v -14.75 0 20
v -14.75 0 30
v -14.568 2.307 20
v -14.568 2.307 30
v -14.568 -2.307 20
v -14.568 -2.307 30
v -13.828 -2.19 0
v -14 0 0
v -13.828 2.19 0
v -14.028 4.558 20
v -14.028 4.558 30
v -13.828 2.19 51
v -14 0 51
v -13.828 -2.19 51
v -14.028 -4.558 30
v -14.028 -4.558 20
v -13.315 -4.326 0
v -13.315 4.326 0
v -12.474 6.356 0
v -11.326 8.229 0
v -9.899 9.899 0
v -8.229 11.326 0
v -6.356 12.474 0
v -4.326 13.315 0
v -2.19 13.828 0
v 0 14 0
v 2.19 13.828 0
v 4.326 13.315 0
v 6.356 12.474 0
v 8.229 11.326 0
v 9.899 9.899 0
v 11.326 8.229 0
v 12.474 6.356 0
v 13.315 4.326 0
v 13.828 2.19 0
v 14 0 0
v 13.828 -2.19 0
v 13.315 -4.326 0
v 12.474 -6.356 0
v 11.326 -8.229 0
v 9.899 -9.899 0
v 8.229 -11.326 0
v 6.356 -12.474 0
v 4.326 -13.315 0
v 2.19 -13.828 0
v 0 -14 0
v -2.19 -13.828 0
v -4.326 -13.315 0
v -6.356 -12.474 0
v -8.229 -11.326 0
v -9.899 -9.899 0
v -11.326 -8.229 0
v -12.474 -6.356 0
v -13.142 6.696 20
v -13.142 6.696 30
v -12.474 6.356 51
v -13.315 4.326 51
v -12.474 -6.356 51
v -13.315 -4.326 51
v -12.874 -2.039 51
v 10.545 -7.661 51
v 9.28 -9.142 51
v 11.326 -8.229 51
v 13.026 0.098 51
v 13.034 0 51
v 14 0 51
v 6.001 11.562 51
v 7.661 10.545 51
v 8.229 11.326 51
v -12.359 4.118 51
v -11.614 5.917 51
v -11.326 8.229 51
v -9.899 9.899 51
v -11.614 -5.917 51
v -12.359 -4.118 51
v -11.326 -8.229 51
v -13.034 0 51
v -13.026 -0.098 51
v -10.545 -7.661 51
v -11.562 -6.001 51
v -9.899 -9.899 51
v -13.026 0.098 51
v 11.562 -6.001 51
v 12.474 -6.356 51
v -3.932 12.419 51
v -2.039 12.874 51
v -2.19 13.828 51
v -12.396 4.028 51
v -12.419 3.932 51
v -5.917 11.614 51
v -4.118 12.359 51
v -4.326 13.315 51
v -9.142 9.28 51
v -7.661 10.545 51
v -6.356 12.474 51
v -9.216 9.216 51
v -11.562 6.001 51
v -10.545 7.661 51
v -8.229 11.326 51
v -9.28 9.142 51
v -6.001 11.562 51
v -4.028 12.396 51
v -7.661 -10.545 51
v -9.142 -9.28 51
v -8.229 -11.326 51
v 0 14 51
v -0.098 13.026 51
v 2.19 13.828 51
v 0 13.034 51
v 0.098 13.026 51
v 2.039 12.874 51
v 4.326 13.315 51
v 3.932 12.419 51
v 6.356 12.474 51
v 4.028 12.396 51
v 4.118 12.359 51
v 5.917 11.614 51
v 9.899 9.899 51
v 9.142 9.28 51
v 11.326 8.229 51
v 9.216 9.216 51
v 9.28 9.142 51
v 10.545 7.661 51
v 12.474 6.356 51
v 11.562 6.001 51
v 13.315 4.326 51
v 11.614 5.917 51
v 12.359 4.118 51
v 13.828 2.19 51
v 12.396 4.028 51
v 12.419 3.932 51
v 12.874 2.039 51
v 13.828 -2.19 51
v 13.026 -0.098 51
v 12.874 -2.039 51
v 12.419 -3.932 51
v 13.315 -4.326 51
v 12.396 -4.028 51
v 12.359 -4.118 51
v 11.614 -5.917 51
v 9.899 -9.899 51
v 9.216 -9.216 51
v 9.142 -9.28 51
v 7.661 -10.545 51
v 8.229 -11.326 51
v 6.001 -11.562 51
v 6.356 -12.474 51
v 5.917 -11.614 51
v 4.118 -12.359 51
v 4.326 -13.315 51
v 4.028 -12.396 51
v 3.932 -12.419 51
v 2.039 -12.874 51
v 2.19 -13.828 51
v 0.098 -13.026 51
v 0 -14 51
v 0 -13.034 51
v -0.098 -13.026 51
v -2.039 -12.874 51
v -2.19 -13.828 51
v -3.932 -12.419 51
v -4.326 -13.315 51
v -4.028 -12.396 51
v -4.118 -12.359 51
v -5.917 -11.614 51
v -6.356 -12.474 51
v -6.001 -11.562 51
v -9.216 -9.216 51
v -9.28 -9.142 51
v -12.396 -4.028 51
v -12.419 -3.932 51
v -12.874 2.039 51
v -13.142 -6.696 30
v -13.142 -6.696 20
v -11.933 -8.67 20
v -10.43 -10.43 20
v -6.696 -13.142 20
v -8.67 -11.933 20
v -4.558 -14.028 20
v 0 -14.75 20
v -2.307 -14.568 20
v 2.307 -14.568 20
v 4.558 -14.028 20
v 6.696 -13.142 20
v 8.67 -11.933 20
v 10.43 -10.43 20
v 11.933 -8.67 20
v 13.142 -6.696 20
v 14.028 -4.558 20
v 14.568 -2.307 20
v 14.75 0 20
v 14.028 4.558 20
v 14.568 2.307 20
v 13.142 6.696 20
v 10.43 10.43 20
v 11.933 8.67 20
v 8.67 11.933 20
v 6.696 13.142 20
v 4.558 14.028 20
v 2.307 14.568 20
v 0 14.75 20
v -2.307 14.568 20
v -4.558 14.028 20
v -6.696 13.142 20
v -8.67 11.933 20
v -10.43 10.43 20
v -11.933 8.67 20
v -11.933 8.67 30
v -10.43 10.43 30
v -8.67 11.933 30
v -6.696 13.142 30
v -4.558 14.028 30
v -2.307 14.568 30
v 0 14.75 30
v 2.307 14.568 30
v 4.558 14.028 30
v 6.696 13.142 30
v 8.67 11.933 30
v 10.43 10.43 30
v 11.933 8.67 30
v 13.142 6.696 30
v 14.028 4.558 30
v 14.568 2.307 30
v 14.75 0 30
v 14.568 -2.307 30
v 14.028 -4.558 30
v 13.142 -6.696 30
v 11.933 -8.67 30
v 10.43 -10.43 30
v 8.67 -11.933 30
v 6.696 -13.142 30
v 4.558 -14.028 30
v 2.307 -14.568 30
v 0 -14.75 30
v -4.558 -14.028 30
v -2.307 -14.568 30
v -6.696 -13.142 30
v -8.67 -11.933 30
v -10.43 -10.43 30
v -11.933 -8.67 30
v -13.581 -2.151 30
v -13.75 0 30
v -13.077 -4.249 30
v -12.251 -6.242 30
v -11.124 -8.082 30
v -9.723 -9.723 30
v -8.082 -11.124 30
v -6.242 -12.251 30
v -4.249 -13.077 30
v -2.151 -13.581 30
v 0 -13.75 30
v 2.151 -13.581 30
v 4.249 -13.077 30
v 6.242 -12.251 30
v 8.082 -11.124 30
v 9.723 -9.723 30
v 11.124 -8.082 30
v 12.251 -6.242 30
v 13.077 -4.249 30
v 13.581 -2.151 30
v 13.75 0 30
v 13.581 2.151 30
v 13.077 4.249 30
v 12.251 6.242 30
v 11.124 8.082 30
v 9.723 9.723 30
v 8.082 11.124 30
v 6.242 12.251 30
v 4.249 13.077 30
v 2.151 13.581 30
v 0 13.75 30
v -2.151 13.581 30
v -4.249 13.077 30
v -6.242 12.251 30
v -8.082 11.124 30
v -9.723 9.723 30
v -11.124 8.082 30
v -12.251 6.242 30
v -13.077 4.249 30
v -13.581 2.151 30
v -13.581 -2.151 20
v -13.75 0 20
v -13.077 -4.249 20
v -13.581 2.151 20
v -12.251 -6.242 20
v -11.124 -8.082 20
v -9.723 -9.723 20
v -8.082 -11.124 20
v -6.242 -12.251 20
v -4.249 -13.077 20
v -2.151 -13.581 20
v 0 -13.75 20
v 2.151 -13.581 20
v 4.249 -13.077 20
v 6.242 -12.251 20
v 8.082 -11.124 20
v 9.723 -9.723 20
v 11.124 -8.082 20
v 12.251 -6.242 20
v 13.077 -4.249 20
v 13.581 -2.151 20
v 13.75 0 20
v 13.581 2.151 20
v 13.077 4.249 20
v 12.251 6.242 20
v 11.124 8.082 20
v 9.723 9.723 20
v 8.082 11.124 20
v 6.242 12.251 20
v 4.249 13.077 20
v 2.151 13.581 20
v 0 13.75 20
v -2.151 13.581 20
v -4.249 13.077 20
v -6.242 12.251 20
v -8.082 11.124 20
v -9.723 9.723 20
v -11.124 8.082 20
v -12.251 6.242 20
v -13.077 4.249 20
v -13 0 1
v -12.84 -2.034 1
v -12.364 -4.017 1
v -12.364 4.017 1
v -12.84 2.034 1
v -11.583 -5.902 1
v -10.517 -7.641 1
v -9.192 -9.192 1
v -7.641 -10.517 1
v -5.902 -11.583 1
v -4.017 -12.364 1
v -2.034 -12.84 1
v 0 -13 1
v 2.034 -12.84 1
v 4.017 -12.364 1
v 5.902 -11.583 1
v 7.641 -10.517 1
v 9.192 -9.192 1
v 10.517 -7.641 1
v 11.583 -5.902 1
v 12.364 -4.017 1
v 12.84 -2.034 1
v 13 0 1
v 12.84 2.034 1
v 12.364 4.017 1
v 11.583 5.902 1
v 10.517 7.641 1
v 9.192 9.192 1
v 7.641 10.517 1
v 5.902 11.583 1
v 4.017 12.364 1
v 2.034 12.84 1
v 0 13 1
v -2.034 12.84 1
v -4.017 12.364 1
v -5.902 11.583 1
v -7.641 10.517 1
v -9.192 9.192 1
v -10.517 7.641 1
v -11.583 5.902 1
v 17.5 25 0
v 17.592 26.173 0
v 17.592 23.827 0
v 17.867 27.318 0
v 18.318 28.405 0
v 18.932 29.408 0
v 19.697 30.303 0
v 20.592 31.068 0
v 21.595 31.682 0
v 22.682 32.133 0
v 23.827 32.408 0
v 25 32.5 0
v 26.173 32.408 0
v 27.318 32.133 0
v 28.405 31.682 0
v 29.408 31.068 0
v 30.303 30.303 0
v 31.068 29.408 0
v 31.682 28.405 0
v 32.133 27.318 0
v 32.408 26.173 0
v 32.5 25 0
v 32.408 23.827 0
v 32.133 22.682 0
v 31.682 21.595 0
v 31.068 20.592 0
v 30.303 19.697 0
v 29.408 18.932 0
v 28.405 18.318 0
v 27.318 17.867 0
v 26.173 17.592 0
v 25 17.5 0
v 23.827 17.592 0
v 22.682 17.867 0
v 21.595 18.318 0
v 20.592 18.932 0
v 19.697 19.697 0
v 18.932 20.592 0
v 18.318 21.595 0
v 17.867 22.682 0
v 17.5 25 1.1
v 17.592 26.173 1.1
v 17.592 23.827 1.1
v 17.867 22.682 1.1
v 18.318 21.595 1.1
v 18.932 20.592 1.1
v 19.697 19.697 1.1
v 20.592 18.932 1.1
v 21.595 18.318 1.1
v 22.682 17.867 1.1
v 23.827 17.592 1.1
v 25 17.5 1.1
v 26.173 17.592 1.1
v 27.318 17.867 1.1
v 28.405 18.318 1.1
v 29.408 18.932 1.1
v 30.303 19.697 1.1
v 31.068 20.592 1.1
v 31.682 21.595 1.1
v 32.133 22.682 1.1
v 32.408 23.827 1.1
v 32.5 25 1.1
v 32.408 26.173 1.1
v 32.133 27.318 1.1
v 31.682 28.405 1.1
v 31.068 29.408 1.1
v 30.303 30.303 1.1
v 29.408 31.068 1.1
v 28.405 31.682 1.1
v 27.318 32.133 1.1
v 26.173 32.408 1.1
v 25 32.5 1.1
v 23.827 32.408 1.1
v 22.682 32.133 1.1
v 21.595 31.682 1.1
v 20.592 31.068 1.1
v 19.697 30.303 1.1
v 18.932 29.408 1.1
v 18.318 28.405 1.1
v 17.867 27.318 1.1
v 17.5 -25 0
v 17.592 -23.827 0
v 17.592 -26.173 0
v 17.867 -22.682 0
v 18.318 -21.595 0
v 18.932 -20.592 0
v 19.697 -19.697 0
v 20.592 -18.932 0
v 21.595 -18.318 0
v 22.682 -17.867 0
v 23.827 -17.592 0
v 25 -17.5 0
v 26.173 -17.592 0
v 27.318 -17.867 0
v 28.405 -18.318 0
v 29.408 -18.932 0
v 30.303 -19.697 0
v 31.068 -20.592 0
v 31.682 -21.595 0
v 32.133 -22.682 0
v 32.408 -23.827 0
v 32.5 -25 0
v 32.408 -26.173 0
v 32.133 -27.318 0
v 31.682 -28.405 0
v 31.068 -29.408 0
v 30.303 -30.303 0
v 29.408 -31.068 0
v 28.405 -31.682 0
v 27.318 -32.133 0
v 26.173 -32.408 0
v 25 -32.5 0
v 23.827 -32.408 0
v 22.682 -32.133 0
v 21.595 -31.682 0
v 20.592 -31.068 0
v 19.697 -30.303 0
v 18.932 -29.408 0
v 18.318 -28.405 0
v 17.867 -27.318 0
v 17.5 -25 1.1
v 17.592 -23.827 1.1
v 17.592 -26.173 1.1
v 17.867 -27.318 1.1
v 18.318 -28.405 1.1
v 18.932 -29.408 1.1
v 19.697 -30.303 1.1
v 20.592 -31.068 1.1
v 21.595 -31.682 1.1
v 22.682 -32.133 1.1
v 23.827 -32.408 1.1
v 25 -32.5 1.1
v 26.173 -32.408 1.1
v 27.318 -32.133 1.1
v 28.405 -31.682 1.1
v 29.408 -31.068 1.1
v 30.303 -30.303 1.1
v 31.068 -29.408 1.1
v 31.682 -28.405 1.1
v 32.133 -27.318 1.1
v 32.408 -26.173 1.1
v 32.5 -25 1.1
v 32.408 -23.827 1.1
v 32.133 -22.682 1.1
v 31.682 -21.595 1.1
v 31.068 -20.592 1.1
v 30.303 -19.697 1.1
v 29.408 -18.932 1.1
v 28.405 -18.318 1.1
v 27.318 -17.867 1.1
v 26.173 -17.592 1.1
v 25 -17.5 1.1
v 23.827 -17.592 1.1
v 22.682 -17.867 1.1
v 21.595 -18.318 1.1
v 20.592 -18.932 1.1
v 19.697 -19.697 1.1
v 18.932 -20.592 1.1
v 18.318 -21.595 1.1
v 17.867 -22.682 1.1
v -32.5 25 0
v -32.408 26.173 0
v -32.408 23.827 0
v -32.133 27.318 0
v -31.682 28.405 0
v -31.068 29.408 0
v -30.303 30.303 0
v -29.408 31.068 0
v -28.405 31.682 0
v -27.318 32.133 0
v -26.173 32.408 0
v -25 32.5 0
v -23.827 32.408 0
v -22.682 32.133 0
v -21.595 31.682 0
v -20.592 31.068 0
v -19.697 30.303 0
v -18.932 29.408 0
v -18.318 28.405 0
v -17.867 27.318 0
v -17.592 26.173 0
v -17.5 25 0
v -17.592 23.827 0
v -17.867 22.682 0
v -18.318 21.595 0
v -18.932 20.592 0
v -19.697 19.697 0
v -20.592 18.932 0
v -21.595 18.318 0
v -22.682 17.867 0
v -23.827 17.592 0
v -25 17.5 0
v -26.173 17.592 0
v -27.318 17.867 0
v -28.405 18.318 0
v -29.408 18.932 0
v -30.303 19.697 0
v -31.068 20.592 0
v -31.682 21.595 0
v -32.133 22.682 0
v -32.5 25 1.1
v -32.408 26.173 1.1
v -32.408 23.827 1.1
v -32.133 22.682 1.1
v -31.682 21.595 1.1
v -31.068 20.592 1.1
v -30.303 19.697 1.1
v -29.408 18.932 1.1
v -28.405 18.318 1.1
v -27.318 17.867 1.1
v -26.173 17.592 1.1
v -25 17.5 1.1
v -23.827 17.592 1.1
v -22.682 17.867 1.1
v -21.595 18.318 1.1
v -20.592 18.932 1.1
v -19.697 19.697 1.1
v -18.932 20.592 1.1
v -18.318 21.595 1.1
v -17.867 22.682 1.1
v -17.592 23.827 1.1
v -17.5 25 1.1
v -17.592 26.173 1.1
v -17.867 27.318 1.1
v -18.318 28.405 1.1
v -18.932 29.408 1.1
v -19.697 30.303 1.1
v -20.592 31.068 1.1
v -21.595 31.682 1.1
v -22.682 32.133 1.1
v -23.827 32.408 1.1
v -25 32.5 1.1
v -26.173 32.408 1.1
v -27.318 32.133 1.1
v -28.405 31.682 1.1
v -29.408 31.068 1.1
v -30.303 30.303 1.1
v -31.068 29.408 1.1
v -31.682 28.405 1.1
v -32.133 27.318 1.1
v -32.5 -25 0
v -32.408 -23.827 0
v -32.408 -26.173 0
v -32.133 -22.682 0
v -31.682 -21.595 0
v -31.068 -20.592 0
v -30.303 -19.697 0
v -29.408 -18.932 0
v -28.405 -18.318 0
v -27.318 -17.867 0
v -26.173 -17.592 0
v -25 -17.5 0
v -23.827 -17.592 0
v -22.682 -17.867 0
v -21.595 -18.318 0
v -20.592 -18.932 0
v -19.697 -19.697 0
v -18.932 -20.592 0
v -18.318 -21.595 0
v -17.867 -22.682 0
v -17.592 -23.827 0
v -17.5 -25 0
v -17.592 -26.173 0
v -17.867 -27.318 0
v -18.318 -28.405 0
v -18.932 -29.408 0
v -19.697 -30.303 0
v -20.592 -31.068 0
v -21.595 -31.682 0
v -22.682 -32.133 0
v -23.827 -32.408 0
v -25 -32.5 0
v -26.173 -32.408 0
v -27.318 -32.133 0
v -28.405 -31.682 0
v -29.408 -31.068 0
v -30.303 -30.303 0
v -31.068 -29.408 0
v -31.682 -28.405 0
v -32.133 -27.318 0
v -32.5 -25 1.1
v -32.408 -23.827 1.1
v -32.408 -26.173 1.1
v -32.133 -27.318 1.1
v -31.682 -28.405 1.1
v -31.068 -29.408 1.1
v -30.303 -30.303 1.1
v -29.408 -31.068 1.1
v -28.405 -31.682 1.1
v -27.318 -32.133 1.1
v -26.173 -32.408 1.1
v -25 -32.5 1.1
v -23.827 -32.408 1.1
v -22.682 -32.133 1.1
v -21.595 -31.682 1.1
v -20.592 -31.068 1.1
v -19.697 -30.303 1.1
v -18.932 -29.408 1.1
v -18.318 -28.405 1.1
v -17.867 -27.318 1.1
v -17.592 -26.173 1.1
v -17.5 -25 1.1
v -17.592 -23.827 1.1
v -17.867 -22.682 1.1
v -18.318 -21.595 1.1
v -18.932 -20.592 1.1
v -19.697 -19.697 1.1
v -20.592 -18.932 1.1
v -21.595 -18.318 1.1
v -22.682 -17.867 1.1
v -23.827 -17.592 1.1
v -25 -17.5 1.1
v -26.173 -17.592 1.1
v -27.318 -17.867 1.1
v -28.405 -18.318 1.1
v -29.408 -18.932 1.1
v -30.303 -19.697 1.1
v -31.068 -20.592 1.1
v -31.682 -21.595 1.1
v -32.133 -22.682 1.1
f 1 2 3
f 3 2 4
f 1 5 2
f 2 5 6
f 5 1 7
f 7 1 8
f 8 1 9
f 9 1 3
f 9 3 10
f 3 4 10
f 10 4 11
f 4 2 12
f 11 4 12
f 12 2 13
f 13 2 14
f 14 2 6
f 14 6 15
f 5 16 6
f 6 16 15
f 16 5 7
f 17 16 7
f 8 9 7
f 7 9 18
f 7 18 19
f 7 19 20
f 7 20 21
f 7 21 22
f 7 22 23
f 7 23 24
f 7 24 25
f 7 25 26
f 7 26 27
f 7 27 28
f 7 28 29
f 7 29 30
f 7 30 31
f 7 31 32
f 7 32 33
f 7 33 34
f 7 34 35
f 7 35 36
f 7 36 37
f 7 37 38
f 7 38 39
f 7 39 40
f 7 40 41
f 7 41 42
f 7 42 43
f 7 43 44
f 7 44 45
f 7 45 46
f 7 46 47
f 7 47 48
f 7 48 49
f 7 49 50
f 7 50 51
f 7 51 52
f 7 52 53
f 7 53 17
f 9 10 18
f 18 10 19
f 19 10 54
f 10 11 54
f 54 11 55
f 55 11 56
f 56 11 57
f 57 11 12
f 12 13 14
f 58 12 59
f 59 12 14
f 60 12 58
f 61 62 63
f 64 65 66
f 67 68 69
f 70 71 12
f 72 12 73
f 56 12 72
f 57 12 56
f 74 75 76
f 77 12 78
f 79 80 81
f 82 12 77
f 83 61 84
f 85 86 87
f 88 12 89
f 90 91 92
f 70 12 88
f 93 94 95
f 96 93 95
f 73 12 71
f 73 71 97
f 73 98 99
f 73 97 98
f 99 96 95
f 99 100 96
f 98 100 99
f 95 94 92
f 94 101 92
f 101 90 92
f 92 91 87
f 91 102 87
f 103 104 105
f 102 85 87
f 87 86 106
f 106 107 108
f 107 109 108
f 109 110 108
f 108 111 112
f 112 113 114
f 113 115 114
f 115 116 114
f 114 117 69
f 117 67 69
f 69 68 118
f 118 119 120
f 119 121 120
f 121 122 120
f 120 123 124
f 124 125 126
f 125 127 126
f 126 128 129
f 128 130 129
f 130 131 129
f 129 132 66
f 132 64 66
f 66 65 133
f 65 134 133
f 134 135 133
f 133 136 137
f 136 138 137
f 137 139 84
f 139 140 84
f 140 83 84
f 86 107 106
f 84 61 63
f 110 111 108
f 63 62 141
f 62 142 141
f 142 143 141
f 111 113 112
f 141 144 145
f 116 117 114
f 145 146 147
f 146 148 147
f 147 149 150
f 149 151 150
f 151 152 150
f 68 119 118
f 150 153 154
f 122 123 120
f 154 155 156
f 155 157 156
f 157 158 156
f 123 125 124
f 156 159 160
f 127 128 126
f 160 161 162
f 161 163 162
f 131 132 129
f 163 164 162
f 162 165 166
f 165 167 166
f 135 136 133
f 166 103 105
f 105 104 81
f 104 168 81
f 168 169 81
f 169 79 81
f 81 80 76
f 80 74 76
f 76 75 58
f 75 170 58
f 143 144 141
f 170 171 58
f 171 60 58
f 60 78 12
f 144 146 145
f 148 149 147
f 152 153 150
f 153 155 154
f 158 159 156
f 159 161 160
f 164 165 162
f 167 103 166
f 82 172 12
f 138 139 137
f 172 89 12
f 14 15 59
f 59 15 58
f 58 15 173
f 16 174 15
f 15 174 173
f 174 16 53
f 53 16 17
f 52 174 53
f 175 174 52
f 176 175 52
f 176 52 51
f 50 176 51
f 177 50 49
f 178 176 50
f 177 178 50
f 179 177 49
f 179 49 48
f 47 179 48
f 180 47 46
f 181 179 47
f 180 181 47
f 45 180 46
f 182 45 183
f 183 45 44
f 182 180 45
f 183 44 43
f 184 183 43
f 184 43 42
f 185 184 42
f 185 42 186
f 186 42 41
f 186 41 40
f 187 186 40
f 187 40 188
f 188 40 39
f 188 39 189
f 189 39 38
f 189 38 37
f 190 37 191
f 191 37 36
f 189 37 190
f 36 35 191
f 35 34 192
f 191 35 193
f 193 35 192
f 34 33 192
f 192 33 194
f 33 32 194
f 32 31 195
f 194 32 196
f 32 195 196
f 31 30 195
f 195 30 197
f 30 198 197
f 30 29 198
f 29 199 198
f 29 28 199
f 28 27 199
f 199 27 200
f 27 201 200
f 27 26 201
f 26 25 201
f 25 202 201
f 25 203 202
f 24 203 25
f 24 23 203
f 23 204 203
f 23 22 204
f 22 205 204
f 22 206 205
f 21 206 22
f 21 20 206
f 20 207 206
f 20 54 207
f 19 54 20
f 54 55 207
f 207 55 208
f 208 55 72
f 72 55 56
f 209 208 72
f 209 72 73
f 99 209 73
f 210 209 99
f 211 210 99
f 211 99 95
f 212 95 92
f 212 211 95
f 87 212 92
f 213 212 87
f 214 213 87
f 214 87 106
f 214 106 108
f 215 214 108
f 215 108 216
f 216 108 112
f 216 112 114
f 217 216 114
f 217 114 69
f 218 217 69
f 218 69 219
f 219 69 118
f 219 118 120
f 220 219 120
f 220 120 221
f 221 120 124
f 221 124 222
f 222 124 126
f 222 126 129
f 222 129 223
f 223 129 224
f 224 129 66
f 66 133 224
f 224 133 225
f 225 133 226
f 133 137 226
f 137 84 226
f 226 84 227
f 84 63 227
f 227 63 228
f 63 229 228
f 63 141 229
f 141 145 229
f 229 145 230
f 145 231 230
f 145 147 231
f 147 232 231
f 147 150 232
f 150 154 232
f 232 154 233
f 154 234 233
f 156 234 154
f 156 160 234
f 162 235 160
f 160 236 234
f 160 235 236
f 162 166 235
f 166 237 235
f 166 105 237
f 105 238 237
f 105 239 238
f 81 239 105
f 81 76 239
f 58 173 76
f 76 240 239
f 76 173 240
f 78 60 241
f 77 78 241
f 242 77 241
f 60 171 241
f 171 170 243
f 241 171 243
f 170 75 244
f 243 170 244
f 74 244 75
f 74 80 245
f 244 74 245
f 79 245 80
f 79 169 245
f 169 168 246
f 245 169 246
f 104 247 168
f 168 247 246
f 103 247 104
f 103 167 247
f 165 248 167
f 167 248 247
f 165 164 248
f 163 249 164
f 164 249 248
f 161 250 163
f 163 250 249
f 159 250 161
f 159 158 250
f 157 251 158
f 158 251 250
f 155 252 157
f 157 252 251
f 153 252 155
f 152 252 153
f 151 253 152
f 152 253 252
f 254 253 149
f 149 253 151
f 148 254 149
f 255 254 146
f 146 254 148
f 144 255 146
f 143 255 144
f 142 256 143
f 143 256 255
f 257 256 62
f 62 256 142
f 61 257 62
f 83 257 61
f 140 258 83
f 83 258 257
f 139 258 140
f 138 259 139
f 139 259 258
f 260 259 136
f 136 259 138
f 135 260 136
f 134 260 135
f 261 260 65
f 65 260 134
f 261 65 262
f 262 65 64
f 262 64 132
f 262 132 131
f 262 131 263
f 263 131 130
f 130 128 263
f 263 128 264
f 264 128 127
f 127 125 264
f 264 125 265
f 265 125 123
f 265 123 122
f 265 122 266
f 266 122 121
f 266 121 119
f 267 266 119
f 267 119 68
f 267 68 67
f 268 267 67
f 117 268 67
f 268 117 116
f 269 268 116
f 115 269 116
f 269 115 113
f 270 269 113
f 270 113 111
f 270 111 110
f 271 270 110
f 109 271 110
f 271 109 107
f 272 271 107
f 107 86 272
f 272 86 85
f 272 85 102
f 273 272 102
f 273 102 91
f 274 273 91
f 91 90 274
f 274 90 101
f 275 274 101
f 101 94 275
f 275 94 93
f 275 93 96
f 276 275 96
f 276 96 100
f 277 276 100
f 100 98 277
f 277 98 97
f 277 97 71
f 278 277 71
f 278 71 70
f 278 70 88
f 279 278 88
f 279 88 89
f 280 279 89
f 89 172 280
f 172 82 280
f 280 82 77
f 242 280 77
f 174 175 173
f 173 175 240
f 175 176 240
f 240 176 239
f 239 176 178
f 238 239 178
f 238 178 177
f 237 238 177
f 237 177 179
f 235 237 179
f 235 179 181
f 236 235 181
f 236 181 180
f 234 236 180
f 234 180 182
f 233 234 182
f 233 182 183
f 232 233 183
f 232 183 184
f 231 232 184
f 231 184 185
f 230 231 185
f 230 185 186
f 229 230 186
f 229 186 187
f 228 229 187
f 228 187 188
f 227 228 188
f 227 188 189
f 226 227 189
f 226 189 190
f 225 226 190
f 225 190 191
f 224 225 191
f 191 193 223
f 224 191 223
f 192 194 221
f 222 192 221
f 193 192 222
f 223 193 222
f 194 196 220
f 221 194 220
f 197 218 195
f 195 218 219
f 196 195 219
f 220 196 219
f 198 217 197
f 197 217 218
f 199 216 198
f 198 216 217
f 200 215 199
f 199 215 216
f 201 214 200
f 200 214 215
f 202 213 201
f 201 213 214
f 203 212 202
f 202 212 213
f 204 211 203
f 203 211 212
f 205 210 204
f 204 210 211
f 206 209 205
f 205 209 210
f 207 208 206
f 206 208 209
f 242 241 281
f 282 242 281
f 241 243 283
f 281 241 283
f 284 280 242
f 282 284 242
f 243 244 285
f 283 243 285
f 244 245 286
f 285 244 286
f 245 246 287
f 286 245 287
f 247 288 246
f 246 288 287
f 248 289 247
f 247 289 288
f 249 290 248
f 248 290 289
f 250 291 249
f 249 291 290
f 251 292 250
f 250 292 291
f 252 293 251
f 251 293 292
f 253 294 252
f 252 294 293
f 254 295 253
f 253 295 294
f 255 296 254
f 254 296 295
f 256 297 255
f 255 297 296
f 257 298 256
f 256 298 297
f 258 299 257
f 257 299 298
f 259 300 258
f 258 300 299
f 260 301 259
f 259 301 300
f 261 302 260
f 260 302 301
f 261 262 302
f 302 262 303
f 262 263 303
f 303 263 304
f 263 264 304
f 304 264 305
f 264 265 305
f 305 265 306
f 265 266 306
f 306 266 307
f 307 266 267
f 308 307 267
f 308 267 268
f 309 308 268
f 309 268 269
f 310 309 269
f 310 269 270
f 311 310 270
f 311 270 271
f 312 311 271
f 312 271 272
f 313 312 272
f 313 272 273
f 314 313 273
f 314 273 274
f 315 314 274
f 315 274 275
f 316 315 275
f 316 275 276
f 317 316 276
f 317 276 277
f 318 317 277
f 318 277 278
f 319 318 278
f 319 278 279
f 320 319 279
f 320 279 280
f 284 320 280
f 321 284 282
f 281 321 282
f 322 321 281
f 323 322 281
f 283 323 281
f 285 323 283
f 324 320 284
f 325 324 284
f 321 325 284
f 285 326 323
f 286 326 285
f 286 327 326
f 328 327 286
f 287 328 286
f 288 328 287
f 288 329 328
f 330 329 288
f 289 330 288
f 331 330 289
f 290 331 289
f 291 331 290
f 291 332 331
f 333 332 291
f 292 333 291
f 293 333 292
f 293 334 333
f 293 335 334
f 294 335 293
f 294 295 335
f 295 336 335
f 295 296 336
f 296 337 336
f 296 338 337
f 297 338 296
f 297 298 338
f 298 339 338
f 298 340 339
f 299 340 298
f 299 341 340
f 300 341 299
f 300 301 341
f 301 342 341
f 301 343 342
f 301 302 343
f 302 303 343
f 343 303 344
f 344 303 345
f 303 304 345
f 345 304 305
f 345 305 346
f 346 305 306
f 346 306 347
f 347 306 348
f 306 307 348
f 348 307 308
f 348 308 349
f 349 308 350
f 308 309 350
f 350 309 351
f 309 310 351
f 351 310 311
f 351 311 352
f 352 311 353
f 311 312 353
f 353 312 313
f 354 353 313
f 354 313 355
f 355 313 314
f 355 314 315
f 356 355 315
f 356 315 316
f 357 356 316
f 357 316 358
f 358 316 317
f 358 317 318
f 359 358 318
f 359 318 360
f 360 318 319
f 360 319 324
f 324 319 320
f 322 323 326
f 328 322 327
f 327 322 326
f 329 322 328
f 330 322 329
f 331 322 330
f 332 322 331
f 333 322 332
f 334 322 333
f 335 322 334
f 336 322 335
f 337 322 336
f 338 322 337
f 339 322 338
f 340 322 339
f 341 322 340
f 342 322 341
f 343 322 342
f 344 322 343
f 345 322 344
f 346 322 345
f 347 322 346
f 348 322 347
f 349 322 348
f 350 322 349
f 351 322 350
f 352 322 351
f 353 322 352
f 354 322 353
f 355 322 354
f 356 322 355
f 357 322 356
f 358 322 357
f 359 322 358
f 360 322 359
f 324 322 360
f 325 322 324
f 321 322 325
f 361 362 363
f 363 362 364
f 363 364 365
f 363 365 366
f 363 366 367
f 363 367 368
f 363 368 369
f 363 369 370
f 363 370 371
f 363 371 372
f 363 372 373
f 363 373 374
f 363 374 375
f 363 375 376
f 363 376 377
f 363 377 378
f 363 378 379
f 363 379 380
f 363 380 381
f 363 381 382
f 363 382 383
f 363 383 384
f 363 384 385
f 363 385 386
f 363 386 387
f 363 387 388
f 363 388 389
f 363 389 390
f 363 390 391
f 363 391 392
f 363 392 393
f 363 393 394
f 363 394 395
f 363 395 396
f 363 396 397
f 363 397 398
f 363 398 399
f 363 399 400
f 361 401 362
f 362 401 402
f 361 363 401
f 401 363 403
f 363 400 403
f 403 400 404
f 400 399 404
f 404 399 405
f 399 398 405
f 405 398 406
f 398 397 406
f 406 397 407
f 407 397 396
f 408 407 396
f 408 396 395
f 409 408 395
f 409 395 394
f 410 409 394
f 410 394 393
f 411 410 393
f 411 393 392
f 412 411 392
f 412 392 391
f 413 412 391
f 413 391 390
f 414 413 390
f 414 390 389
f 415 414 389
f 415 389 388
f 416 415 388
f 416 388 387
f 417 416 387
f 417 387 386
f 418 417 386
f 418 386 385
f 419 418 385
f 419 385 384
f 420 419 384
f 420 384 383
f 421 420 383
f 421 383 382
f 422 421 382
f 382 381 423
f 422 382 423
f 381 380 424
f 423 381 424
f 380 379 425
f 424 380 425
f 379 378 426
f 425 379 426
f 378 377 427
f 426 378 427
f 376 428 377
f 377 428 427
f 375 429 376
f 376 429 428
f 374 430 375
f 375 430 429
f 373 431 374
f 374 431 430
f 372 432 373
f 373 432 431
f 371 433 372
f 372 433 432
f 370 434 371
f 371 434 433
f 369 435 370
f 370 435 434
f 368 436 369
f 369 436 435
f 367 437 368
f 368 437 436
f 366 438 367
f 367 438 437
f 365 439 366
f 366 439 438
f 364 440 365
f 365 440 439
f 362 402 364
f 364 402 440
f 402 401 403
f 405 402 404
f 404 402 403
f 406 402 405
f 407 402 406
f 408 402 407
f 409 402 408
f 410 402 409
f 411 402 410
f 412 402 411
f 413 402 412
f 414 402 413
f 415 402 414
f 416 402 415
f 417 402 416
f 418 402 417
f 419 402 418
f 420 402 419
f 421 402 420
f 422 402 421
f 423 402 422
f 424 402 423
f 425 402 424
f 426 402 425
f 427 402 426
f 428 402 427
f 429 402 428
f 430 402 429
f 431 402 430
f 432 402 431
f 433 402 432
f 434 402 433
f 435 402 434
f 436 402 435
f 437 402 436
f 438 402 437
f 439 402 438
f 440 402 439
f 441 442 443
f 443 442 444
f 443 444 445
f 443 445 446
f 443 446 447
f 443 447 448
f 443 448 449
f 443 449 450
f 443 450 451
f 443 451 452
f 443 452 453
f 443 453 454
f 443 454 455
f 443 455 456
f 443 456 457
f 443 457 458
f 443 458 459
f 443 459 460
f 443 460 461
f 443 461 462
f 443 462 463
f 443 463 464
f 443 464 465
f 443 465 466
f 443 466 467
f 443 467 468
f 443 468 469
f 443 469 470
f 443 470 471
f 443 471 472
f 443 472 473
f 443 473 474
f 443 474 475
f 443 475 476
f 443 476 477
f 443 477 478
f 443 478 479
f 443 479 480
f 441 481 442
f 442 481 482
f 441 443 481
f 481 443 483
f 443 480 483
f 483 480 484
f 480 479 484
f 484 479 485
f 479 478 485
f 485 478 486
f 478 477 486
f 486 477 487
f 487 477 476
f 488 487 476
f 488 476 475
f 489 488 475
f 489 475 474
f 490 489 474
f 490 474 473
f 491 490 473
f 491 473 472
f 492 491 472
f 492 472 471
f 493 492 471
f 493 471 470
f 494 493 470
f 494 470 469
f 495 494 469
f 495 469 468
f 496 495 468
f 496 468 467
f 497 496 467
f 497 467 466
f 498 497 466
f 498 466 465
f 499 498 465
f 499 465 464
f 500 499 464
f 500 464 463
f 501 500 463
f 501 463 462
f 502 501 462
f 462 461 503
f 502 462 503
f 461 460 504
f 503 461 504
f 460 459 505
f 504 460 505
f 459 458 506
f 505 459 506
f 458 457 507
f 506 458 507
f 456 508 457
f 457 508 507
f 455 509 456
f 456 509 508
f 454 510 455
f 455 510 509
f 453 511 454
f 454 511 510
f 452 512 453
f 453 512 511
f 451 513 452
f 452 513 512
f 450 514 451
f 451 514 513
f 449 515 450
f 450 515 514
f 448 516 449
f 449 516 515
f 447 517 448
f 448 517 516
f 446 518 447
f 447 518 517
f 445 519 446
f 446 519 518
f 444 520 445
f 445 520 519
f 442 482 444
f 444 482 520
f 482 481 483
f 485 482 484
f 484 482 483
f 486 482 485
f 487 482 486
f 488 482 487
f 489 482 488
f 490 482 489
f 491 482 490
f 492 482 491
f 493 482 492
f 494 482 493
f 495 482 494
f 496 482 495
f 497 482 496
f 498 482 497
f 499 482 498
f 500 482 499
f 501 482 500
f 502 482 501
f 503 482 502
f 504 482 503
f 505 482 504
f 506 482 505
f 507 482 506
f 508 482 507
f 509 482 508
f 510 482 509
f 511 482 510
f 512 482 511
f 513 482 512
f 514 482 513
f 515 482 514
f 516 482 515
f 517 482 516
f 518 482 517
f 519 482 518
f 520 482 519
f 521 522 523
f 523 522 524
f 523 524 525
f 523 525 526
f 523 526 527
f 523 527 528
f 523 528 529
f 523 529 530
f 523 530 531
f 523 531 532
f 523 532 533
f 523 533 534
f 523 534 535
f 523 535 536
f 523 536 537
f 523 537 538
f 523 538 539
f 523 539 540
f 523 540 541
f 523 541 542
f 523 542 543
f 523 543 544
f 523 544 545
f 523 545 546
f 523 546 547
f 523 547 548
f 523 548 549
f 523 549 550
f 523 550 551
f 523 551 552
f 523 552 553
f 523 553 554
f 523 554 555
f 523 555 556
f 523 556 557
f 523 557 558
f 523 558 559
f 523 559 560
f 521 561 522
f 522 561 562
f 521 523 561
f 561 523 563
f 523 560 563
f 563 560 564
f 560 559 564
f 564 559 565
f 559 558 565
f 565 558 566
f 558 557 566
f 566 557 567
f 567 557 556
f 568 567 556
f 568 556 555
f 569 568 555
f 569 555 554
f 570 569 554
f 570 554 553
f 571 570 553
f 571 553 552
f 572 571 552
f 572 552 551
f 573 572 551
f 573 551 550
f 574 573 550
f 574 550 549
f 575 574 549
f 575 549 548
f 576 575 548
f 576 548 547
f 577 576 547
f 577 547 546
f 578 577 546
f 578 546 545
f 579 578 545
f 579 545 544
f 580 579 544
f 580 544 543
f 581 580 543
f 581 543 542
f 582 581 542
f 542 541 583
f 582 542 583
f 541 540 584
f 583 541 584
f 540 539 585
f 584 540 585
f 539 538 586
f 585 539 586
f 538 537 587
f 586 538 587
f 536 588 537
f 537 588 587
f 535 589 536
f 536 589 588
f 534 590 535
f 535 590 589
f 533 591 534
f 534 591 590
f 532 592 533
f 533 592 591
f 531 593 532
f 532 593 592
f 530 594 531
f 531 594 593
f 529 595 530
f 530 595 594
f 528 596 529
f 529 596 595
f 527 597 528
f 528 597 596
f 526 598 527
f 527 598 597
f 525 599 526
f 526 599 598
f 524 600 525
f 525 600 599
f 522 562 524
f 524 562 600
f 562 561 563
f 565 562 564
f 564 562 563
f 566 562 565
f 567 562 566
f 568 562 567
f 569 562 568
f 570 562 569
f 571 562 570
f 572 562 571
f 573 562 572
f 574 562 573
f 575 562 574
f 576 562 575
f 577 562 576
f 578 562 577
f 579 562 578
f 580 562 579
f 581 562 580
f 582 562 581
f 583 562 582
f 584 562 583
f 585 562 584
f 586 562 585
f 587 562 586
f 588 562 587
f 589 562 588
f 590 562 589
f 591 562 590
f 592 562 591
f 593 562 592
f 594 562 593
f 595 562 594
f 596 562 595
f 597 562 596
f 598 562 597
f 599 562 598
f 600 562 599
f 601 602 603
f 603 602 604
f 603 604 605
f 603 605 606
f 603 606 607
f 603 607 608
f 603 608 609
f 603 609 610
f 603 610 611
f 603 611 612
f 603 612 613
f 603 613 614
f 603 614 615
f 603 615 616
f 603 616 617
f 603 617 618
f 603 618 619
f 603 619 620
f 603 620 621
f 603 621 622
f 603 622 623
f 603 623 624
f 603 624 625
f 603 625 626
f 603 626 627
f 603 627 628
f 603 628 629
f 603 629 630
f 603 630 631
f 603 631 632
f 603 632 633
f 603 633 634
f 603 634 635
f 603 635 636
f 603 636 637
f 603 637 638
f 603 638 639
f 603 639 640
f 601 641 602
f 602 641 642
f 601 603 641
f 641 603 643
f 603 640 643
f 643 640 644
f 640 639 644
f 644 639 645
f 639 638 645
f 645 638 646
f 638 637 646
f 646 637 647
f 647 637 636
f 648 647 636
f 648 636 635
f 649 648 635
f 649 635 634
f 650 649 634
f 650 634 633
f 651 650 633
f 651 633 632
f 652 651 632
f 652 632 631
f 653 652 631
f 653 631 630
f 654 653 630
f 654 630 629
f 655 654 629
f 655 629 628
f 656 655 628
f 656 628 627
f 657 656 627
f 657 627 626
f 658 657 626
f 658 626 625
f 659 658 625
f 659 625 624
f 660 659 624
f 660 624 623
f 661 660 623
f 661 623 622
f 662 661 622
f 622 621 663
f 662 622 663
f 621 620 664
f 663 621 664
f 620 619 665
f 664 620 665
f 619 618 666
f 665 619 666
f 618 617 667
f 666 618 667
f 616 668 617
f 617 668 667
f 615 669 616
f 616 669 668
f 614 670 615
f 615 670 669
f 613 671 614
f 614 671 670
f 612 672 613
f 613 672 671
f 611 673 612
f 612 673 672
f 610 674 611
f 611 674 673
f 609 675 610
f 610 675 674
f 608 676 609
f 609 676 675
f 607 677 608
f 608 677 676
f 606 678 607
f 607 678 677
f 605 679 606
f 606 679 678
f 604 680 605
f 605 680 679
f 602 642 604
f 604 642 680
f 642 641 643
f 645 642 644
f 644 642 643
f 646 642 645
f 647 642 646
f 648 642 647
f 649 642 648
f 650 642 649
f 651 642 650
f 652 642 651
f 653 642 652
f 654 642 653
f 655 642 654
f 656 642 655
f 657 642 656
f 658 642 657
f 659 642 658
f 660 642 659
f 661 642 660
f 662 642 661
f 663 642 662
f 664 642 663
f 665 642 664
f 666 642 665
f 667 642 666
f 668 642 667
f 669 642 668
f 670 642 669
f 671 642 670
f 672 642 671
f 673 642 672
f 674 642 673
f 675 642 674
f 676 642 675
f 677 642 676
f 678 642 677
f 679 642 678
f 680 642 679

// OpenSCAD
/**
 * Parchis set
 * Juego de fichas y cubilete para parchis
 * 
 * Creado por Diego Viejo
 * 
 */


//Lista de parametros
fichaHeight = 1.1;
fichaRad = 15/2;

cubileteHeight = 50;
cubileteRad1 = 28/2;
cubileteRad2 = 29.5/2;
cubileteWall = 1;

module ficha()
{
  cylinder(r=fichaRad, h=fichaHeight, $fn=40);
}


module cubilete()
{
  difference()
  {
    chained_hull()
    {
      cylinder(r=cubileteRad1, h=2, $fn=40);
      translate([0, 0, cubileteHeight/2-5]) cylinder(r=cubileteRad2, h=10, $fn=40);
      translate([0, 0, cubileteHeight]) cylinder(r=cubileteRad1, h=1, $fn=40);
    }
    
    chained_hull()
    {
      translate([0, 0, 1]) cylinder(r=cubileteRad1-cubileteWall, h=1, $fn=40);
      translate([0, 0, cubileteHeight/2-5]) cylinder(r=cubileteRad2-cubileteWall, h=10, $fn=40);
      translate([0, 0, cubileteHeight]) cylinder(r=cubileteRad1-cubileteWall, h=2, $fn=40);
    }

  }
}

module chained_hull()
{
  for(i=[0:$children-2])
   hull()
   {
     children(i);
     children(i+1);
   }
}

cubilete();

for(i=[25, -25])
{
  for(j=[25, -25])
    translate([i, j, 0]) ficha();
}
